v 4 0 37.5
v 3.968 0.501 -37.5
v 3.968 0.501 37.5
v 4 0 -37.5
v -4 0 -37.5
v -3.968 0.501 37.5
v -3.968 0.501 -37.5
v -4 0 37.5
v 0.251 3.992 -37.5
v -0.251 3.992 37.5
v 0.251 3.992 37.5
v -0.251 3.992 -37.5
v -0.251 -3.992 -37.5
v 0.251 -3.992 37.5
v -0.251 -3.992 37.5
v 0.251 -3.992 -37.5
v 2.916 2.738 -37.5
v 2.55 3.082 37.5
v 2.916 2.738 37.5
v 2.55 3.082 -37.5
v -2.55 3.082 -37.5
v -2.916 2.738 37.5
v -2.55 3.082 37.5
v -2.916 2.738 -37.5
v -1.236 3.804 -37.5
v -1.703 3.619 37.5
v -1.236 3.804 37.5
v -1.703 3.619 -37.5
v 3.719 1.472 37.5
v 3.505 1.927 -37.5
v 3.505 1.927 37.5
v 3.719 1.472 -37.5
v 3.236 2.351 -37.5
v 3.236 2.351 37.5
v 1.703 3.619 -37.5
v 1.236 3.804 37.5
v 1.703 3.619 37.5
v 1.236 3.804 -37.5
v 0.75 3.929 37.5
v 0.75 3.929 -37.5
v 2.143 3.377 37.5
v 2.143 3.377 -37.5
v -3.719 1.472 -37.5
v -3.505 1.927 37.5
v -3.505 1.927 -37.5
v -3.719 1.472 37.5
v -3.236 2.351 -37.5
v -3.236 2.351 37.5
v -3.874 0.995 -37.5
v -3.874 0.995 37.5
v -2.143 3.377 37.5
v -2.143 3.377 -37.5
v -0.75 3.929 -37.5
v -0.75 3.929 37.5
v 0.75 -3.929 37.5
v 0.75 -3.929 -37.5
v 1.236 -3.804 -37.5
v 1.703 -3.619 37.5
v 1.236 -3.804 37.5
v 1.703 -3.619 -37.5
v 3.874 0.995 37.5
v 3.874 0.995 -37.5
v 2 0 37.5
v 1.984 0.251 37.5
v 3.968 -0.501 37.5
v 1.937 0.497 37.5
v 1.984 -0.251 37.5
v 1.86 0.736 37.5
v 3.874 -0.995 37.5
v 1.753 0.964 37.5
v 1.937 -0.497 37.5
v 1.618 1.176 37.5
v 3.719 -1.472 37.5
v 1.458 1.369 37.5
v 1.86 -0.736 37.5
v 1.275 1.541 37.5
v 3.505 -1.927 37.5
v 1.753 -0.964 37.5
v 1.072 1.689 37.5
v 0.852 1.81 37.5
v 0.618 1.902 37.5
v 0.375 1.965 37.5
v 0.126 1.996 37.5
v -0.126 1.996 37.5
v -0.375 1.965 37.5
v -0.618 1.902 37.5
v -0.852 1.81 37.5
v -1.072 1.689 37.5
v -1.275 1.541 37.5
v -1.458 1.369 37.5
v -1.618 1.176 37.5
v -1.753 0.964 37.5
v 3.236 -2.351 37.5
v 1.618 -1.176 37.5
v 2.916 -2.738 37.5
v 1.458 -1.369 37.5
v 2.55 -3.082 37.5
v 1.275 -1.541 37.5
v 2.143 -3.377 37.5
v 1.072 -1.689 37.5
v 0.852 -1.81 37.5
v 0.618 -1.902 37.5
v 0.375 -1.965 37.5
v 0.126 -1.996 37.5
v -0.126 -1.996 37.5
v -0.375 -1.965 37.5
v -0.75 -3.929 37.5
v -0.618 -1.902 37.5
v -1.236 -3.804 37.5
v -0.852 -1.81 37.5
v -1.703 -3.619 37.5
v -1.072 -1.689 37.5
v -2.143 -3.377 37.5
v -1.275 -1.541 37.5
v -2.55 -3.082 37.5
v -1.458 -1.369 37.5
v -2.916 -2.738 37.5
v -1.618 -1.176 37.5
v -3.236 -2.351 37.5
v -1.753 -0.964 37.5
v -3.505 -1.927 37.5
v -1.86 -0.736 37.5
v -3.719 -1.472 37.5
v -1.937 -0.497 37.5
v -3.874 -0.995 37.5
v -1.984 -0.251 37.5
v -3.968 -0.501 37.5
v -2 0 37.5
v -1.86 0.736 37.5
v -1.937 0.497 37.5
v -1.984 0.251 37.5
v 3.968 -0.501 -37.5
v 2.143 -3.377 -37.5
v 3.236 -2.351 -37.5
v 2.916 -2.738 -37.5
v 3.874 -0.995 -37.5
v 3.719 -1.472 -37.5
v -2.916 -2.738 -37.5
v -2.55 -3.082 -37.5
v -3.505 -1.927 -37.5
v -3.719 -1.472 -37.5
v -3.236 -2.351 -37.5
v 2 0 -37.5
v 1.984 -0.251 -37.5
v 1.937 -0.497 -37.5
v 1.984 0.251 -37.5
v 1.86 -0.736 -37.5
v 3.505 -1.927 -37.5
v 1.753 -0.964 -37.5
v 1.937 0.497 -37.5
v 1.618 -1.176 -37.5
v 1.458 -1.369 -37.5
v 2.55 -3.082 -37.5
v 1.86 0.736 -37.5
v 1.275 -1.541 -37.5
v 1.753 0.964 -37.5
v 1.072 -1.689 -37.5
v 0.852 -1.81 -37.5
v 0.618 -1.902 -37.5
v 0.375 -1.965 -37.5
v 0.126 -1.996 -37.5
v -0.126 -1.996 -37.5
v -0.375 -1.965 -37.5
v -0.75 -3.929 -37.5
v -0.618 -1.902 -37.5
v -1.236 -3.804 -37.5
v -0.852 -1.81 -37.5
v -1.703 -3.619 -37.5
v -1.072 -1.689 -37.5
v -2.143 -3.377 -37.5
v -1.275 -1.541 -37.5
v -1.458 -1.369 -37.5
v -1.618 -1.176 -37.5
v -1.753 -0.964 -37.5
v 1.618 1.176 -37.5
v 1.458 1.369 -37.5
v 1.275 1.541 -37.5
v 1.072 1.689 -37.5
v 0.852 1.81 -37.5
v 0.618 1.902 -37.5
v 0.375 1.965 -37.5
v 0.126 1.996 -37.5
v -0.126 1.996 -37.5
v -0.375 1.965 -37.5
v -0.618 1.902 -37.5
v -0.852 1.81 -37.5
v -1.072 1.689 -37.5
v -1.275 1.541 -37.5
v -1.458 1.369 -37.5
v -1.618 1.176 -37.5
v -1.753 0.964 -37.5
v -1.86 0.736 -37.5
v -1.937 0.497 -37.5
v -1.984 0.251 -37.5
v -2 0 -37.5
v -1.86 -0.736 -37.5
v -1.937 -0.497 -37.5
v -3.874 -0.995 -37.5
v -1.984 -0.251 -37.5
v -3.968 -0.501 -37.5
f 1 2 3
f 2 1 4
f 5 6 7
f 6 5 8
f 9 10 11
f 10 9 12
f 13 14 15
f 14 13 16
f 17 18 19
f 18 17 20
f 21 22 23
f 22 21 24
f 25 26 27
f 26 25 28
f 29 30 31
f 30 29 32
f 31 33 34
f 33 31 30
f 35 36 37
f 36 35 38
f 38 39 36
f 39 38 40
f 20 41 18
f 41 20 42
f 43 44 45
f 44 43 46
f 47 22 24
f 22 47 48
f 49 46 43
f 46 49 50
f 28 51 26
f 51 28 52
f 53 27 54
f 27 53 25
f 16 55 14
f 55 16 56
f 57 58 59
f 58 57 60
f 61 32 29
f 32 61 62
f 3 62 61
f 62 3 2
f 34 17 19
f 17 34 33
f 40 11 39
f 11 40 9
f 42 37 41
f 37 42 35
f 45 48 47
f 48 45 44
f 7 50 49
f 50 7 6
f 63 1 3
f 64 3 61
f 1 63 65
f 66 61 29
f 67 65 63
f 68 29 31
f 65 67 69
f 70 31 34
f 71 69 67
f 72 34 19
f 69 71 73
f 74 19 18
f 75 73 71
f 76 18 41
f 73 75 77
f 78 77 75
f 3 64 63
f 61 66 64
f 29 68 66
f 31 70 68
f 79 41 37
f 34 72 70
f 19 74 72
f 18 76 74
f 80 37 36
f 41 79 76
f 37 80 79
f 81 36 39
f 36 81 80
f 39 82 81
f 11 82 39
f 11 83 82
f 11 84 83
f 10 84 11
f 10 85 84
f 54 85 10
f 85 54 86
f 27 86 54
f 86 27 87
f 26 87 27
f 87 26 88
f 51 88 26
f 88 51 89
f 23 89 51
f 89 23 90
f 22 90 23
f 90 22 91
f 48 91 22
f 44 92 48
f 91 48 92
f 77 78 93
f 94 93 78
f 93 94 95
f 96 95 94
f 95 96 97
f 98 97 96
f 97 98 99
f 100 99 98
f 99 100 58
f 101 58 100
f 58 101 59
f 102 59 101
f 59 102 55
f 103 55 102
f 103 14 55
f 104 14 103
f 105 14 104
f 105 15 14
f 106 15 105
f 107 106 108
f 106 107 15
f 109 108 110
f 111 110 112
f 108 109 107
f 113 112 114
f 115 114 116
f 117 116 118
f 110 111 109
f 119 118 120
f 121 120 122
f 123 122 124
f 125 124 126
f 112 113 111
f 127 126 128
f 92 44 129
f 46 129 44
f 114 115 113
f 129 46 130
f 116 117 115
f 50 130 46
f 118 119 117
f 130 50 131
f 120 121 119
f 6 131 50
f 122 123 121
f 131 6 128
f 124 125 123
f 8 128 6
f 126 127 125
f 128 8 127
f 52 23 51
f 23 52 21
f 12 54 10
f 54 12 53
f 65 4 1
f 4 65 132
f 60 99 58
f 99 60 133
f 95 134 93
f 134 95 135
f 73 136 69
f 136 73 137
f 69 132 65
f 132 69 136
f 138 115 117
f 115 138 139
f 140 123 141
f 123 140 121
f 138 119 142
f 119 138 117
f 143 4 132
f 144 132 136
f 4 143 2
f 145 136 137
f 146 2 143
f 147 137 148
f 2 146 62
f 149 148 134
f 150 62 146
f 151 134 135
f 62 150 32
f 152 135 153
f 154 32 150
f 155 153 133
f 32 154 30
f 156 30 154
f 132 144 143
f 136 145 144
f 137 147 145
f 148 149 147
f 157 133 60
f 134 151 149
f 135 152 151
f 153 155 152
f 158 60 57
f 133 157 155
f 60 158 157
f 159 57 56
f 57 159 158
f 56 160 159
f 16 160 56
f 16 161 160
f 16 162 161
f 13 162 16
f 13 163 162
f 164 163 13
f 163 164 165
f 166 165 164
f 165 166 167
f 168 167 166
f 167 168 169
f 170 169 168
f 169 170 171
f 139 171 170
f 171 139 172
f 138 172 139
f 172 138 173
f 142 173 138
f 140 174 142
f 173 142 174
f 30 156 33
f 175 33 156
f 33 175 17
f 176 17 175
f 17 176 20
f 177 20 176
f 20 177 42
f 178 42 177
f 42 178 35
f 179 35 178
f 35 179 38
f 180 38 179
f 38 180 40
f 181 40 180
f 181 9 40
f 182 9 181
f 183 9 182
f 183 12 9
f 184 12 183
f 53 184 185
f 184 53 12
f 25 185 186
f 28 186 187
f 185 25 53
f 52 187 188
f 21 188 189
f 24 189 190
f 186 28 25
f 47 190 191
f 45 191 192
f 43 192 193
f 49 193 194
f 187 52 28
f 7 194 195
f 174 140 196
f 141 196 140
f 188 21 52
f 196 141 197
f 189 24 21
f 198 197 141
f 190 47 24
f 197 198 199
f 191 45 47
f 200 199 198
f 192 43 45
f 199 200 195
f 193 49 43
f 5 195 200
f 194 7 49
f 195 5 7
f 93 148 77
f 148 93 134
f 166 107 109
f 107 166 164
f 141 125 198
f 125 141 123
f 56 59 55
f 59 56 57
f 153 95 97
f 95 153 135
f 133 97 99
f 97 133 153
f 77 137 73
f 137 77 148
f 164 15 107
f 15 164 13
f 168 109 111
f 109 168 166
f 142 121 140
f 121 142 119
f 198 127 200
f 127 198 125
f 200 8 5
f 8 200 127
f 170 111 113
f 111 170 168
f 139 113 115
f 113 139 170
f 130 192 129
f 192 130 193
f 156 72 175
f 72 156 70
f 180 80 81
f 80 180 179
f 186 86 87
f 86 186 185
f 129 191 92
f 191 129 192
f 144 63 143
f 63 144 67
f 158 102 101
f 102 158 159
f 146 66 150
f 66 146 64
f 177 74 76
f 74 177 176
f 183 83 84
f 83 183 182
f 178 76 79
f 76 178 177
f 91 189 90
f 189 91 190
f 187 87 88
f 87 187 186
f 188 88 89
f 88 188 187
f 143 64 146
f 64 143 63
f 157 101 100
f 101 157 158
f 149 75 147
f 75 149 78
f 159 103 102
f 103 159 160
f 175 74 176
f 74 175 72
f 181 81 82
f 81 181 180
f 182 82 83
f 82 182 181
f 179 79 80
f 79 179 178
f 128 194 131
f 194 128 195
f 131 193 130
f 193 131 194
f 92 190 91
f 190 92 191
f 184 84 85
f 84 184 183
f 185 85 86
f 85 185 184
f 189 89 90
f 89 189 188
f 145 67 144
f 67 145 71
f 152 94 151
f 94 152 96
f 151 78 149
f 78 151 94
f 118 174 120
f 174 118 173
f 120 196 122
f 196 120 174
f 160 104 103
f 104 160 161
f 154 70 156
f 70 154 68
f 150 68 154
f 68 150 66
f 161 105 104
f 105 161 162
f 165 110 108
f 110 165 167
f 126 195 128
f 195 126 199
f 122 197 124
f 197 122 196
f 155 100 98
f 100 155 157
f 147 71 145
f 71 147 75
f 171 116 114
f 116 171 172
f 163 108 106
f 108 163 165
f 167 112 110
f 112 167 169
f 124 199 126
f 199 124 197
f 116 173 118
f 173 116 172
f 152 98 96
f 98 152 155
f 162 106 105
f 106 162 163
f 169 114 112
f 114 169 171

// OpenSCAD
$fn = 50;


difference() {
	union() {
		translate(v = [0, 0, -37.5000000000]) {
			cylinder(h = 75, r = 4.0000000000);
		}
	}
	union() {
		translate(v = [0, 0, -100.0000000000]) {
			cylinder(h = 200, r = 2);
		}
	}
}
